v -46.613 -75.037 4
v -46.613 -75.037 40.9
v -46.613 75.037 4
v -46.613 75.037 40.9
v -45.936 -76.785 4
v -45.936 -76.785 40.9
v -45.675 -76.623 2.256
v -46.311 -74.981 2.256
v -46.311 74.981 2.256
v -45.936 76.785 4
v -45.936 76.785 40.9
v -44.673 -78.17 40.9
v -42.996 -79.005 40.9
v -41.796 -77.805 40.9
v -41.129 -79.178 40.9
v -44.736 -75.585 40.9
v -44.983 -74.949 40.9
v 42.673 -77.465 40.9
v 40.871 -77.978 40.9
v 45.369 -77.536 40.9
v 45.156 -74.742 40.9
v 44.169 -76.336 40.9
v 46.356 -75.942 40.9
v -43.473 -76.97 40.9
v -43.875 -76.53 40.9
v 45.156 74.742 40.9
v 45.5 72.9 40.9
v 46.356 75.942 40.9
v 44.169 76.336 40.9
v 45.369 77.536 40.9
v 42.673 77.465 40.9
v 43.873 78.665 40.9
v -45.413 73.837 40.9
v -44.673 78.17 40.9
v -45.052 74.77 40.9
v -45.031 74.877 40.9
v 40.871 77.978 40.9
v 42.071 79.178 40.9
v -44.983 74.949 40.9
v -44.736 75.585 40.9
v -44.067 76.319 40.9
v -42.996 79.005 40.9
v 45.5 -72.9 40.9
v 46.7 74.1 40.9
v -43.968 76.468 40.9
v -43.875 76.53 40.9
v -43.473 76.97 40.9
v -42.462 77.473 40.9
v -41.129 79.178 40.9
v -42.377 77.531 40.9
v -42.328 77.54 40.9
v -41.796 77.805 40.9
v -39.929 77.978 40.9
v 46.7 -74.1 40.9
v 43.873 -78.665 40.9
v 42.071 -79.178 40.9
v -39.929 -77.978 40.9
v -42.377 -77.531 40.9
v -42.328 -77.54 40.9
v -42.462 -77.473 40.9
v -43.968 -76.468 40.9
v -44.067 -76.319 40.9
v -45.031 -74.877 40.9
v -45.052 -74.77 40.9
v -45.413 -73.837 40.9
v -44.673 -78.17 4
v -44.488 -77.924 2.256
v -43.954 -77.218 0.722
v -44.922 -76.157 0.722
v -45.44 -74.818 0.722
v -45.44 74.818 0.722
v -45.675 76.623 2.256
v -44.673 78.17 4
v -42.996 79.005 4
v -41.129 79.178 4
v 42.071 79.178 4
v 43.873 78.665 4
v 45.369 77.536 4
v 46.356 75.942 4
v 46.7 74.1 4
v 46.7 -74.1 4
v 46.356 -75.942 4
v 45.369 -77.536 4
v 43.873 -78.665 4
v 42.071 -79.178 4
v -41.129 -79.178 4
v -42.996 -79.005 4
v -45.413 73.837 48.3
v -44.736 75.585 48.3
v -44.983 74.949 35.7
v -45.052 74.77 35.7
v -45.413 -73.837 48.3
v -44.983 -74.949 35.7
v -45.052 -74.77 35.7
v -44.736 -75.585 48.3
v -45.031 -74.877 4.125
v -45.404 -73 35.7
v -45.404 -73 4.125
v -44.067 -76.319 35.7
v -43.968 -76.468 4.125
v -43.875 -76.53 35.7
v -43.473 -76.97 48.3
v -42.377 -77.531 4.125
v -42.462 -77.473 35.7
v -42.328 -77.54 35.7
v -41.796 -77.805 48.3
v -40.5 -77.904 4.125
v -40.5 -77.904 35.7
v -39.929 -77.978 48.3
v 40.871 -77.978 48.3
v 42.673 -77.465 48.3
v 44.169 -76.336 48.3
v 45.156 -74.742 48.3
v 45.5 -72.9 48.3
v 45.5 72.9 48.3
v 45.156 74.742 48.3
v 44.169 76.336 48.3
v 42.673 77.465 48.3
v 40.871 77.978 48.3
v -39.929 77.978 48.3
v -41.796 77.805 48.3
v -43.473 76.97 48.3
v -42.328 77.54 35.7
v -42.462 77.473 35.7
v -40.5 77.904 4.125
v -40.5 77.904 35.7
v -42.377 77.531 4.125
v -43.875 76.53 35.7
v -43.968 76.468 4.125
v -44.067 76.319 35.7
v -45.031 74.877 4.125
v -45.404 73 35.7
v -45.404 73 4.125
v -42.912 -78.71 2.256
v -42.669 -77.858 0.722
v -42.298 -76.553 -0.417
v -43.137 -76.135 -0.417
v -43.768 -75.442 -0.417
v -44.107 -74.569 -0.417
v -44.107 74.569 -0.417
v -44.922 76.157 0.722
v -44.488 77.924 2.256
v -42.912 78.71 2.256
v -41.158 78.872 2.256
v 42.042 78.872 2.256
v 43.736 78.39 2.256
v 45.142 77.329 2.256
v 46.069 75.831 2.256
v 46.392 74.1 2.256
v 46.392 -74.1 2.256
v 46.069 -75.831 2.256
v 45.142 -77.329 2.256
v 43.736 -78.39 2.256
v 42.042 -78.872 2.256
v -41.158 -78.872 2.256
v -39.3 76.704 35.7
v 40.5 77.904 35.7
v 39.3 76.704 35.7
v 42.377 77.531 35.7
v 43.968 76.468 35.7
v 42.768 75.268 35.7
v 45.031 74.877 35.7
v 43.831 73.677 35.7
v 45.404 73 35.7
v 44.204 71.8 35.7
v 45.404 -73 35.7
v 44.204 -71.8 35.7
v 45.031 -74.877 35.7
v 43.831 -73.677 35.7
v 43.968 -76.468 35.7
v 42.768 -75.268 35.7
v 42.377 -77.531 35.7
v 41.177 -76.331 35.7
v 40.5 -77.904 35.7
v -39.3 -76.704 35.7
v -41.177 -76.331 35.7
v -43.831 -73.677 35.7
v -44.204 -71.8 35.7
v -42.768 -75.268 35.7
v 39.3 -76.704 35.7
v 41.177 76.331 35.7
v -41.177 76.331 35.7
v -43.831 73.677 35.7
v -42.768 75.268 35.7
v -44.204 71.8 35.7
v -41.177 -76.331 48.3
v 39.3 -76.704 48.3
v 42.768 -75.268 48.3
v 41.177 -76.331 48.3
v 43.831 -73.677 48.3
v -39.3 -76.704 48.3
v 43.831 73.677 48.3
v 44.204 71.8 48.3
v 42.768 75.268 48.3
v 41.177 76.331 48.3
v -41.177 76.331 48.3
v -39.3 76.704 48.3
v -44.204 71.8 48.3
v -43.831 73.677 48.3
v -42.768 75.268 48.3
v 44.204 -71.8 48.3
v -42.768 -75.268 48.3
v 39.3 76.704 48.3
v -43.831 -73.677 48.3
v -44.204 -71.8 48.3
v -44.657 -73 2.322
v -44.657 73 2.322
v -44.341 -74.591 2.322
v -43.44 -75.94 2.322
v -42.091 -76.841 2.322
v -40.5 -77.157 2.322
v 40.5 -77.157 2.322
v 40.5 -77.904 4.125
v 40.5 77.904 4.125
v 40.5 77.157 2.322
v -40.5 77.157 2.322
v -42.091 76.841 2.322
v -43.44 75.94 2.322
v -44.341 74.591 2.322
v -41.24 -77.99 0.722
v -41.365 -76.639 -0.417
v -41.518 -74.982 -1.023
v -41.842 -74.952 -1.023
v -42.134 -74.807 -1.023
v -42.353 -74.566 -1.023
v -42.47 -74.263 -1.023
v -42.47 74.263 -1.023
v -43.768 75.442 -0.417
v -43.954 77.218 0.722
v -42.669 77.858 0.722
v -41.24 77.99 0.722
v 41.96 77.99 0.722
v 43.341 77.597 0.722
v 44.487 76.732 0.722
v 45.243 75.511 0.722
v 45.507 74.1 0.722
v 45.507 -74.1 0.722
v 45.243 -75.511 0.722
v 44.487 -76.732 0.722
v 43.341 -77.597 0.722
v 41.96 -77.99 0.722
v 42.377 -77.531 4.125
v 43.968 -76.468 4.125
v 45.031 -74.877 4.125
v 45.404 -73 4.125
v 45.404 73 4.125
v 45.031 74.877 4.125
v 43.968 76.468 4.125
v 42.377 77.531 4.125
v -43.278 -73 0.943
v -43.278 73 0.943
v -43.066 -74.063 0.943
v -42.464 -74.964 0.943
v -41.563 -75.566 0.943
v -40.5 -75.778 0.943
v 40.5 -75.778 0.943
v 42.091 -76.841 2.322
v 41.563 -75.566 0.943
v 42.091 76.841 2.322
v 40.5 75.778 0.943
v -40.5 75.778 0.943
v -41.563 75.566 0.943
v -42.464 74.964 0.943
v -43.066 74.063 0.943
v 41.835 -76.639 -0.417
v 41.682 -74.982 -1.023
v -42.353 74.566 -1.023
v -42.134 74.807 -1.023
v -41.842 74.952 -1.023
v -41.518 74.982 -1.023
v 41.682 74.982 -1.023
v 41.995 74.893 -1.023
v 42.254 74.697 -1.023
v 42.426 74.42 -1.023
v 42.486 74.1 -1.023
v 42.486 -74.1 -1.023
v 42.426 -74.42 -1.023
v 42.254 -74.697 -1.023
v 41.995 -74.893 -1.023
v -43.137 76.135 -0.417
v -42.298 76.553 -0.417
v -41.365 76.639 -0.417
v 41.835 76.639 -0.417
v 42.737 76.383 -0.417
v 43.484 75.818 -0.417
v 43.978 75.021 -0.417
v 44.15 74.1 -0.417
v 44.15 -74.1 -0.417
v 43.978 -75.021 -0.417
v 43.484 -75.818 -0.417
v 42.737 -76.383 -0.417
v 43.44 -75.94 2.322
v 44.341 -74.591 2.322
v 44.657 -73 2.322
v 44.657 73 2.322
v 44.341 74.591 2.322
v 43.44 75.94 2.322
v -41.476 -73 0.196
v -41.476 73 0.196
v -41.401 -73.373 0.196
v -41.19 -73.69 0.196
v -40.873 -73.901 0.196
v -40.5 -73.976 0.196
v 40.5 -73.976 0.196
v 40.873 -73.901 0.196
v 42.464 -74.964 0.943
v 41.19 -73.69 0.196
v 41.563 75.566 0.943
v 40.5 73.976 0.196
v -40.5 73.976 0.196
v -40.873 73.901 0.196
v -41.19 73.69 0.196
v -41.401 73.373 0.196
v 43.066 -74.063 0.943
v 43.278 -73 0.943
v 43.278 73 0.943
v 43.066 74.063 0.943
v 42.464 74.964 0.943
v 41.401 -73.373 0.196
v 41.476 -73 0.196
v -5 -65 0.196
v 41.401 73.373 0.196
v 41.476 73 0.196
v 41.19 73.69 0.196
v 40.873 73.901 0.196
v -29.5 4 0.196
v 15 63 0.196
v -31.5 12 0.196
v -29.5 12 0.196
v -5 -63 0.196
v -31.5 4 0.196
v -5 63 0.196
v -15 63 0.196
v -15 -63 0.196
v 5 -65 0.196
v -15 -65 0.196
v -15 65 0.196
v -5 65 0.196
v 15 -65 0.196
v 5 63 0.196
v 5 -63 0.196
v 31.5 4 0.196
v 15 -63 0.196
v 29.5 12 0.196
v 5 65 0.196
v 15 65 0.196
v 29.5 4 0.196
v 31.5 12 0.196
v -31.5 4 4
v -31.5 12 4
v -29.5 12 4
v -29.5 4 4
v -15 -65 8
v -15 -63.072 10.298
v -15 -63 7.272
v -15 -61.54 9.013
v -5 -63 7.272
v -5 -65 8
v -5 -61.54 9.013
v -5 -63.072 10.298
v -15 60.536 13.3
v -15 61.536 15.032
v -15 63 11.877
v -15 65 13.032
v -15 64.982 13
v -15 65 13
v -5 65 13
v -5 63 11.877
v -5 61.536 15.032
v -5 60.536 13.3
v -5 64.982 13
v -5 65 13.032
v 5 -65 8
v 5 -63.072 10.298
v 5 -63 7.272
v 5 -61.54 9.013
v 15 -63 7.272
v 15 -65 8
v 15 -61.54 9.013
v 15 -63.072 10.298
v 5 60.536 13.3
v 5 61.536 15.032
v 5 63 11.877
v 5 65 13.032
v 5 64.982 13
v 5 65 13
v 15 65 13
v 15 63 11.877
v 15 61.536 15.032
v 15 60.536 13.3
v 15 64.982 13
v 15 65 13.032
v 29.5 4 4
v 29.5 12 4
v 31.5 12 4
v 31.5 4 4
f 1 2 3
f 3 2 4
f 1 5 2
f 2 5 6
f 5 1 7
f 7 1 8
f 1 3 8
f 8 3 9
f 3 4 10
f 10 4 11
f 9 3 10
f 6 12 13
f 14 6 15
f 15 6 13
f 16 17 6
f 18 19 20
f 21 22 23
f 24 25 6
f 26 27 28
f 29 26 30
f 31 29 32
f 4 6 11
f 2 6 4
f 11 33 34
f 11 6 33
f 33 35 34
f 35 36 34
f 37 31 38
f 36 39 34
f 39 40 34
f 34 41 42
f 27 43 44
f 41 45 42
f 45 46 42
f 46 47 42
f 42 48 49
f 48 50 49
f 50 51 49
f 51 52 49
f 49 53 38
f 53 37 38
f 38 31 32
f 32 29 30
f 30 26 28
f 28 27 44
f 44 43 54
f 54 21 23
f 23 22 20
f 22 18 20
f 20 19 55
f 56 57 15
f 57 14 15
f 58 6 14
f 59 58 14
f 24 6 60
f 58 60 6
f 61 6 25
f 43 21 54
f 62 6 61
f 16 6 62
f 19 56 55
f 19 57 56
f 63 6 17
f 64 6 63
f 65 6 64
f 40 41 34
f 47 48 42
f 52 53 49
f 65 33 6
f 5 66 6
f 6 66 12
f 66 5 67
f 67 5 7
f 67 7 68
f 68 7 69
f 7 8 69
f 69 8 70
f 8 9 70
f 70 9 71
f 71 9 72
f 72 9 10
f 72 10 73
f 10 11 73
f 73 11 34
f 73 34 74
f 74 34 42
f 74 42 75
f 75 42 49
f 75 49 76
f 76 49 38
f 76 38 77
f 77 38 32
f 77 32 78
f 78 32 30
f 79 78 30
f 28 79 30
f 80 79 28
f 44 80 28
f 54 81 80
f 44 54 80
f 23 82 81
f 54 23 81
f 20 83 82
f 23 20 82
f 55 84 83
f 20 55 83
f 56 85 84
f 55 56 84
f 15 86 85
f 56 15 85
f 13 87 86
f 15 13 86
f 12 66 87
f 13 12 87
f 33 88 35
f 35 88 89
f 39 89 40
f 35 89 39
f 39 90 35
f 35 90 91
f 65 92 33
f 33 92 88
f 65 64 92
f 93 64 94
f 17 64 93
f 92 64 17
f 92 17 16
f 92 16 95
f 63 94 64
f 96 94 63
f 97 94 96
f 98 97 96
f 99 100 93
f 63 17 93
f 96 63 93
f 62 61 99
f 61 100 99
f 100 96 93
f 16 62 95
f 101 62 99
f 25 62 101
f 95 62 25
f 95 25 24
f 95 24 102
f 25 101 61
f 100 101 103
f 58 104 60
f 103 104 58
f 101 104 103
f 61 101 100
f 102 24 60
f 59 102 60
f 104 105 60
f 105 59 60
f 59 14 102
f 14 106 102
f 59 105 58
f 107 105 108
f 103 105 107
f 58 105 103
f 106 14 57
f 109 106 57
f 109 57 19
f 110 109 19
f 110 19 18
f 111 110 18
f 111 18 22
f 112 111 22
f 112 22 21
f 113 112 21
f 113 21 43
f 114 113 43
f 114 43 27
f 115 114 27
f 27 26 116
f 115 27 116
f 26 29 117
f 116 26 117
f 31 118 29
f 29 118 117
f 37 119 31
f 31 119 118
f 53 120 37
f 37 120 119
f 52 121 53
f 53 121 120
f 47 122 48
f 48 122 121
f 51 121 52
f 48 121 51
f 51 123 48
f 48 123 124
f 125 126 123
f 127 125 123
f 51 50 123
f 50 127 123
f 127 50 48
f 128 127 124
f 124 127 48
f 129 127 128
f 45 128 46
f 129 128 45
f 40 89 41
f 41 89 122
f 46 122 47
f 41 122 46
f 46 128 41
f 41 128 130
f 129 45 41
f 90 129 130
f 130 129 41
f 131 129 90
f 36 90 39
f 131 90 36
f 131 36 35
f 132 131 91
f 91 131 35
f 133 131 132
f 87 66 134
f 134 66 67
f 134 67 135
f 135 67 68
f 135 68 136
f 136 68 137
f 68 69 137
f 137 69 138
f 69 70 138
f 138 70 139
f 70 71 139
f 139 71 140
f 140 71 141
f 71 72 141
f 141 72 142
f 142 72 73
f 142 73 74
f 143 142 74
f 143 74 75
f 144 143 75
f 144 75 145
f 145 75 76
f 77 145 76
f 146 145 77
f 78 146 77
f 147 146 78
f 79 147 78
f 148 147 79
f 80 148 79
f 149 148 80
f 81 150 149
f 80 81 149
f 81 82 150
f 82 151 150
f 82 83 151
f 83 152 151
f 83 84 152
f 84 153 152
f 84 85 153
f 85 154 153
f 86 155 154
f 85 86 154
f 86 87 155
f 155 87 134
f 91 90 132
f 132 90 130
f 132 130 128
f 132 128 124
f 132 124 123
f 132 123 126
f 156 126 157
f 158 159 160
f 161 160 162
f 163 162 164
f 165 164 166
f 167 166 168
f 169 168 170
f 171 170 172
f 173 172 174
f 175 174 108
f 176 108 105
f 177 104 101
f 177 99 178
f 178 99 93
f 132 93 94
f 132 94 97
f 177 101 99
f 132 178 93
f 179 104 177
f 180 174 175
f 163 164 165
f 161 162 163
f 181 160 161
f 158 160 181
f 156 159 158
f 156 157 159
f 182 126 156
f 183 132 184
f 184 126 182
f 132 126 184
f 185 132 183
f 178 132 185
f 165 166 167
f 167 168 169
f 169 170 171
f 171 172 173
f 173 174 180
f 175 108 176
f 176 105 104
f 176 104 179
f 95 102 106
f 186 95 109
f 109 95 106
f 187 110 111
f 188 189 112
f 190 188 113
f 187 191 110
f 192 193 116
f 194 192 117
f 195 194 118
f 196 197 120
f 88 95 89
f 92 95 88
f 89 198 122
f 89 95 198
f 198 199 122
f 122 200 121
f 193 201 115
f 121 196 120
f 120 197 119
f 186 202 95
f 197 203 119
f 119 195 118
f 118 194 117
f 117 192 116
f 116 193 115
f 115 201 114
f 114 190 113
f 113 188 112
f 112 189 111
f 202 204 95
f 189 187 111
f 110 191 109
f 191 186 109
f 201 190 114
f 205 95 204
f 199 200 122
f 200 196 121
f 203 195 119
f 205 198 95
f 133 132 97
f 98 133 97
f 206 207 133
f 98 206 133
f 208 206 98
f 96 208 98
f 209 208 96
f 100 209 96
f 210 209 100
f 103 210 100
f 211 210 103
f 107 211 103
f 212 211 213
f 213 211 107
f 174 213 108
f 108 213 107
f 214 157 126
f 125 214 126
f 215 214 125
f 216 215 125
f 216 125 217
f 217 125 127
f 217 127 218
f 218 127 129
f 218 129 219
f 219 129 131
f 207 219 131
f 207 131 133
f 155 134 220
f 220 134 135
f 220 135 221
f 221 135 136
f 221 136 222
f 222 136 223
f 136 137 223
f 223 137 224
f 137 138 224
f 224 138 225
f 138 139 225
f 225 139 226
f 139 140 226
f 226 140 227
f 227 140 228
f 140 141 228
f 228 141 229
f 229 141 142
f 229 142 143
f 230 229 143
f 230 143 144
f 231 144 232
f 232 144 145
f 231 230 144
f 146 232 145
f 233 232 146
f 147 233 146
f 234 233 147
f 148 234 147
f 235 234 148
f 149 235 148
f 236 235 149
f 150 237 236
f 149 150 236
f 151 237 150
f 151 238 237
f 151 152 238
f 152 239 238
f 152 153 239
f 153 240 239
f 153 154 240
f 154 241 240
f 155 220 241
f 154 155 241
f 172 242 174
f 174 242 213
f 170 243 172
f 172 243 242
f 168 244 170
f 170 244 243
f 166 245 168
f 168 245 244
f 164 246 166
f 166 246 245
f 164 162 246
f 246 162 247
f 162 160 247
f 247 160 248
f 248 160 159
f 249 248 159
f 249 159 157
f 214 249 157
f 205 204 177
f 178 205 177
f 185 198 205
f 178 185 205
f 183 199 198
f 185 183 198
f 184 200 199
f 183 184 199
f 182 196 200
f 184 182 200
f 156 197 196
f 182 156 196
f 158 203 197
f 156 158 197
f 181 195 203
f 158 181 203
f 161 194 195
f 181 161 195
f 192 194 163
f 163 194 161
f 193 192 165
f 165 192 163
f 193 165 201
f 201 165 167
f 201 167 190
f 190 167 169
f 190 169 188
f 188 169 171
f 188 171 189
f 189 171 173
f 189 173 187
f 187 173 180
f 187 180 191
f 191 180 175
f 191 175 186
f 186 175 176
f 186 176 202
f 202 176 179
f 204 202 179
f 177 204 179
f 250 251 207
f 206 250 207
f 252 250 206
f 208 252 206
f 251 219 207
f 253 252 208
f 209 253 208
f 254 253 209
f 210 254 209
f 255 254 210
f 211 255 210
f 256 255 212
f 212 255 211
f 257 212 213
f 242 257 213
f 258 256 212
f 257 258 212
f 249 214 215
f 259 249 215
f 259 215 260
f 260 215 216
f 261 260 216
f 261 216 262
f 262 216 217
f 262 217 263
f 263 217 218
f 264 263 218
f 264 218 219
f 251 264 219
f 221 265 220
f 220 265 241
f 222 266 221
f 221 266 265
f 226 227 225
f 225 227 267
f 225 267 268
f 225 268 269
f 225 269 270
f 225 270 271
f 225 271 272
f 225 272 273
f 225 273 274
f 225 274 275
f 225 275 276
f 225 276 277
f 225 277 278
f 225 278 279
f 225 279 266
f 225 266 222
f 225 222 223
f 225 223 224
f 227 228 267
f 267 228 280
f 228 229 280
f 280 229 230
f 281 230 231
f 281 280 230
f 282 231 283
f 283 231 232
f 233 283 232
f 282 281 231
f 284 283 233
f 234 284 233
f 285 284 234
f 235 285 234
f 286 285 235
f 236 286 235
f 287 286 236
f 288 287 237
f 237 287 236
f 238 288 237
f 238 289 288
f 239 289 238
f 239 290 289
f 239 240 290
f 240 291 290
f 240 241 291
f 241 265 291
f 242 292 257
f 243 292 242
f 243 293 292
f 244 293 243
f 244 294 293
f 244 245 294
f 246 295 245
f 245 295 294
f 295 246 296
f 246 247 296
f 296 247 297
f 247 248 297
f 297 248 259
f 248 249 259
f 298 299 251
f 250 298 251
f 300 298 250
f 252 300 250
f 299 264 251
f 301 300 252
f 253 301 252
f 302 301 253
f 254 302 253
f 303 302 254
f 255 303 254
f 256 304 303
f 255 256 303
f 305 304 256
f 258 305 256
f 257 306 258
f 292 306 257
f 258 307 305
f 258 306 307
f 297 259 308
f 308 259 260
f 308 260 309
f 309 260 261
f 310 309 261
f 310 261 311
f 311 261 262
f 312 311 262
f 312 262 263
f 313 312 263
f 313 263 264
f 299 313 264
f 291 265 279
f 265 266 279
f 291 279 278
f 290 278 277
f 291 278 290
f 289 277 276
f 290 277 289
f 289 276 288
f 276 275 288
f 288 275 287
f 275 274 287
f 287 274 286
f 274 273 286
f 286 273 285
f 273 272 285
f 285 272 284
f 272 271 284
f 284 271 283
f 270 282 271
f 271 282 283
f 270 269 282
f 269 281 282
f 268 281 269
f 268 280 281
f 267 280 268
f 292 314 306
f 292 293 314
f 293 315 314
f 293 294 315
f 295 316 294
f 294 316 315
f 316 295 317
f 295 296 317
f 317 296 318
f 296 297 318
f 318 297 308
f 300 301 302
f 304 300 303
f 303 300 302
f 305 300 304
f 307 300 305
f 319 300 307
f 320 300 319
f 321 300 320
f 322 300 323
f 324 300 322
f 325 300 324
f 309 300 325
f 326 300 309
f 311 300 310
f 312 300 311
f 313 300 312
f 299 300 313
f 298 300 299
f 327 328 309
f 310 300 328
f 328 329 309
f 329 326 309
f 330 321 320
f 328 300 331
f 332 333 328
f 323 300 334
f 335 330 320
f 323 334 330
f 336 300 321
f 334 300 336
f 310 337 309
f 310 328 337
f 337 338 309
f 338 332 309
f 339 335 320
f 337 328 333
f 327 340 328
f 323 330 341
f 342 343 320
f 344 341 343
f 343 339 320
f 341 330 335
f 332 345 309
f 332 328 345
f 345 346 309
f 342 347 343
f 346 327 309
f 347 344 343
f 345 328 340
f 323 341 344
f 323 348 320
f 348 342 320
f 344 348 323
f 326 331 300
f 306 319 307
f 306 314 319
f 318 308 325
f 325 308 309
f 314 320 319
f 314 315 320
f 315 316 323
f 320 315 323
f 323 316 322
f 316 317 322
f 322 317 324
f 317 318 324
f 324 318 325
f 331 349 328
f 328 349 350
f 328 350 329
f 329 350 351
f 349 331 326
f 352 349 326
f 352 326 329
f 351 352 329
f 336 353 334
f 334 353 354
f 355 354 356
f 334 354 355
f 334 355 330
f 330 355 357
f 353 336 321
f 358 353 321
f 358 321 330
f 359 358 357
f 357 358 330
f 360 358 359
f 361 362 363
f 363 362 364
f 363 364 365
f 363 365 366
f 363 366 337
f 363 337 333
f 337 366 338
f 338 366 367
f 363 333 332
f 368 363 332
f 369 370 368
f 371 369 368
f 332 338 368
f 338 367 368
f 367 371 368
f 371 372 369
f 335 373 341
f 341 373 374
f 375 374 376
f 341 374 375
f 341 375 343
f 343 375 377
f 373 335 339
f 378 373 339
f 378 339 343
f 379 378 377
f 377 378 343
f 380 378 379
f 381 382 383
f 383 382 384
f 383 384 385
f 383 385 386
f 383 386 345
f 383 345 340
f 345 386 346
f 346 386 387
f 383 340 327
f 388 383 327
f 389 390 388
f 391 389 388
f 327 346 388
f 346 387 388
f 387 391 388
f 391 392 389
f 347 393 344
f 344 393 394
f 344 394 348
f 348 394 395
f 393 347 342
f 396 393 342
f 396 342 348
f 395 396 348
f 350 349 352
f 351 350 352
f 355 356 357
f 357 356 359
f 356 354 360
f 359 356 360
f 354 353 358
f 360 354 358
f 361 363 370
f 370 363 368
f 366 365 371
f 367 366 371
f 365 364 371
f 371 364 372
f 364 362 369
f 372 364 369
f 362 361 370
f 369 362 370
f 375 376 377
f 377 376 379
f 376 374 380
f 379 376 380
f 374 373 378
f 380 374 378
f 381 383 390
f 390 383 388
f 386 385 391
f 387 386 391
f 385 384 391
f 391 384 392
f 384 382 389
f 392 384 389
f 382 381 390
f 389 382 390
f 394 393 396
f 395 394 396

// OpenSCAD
// Steel series mouse, pro gaming laser mouse, cover.


mouse_length = 126;
// Smallest waist
mouse_waist = 58 + 3.0;
// Smallest place at, measured from front.
mouse_waist_at = 55;
// Height is used by case
mouse_height = 42;

// Case offset to mouse stuff
// These are inside measurements.
case_padding = 30;
case_width = mouse_waist + case_padding;
case_length = mouse_length + case_padding;
case_height = mouse_height + case_padding; // Leave room for wire.
case_corner_radius = 5;
case_thickness = 1.2;
case_snap_height = 15;

// thickness whereever it is used
snap_thickness = 2.0;

// Padding manifolds
pad = 0.1;

////////////////////////////////////////////////////////////////////////////////

// This is a snap holder in the front. Two are used, one on each side of the wire.
module front_snap( x_offset, width, inner_height, thickness, overlap, overlap_angle ) {
    translate( [x_offset + width / 2.0, thickness / 2.0, (inner_height + thickness) / 2.0] ) {
        cube([width, thickness, inner_height + thickness], center = true);
        // TODO: the 4.2 can be calculated, if I cared...
        translate( [ -width/2.0, 0, ( overlap + inner_height + thickness ) / 2.0 - 3.7 ] ) {
            rotate( [overlap_angle, 0, 0] ) {
                cube([width, thickness, overlap], center = false );
            }
        }

    }
}

module front_snaps() {
    front_snap( 5, 10, 11, snap_thickness, 4, 60 );
    front_snap( -15, 10, 11, snap_thickness, 4, 60 );
}



// This is a snap holder in the back. Two are used, one on each side of the wire.
module back_snap( x_offset, width, inner_height, thickness, overlap, overlap_angle ) {
    translate( [x_offset + width / 2.0, thickness / 2.0, (inner_height + thickness) / 2.0] ) {
        cube([width, thickness, inner_height + thickness], center = true);
        // TODO: the 2.1 can be calculated, if I cared...
        // y also, very broken now.
        translate( [ -width/2.0, -thickness+1, ( overlap + inner_height + thickness ) / 2.0 - 1.5 ] ) {
            rotate( [overlap_angle, 0, 0] ) {
                cube([width, thickness, overlap], center = false );
            }
        }

    }
}

module back_snaps() {
    translate([0, -mouse_length-snap_thickness, 0] ) {
        back_snap( 5, 10, 6, snap_thickness, 3, -40 );
        back_snap( -15, 10, 6, snap_thickness, 3, -40 );
    }
}


// Side snaps, not really snaps
module side_snap( x_offset, y_offset, width, height, thickness ) {
    translate( [x_offset, y_offset, height / 2.0] ) {
        cube([thickness, width, height], center = true);
    }
}

module side_snaps() {
    side_snap( mouse_waist / 2.0, -mouse_waist_at, 8, 4, snap_thickness );
    side_snap( -mouse_waist / 2.0, -mouse_waist_at, 8, 4, snap_thickness );
}


module bottom_snaps() {
    translate([0, ( mouse_length + 2 * snap_thickness ) / 2.0, 0]) {
        translate([0,-snap_thickness,0]) {
            front_snaps();
            back_snaps();
            side_snaps();
        }
    }
}

////////////////////////////////////////////////////////////////////////////////
// The enclosure/case
module rounded_box(x, y, z, r) {
    minkowski() {
        cube([x-r * 2, y-r*2, z-r*2], center = true);
        sphere(r=r);
    }
}

module hollow_box(x, y, z, r) {
    difference() {
        rounded_box(x+case_thickness*2, y+case_thickness*2, z+case_thickness*2, r+0.1);
        rounded_box(x, y, z, r);
    }
}

// This is the outer box - we make two of these, and split them to get lid and bottom.
module outer_box() {
    hollow_box(case_width, case_length, case_height, case_corner_radius);
}

// This is the bottom of the case, inclusive snaps.
// It is cut at mouse height
module bottom_case() {
    // Translate up to snaps + pad
    translate([0,0,case_height/2.0+pad]) {
        difference() {
            outer_box();
            // Cut at mouse height for now
            translate([0,0,mouse_height]) {
                cube( [200,200,case_height + case_thickness*2], center = true);
            }
        }
    }
    bottom_snaps();
}

// The snaps between the two parts.
// Centered at mouse_height, match bottom
module bottom_lid_snap() {
    translate([0,0,mouse_height]) {
        difference() {
            hollow_box(case_width-2*case_thickness, case_length-2*case_thickness, case_height, case_corner_radius);
            translate([0,0,-case_height/2-case_snap_height/2]) {
                cube( [200,200,case_height + case_thickness*2], center = true);
            }
            translate([0,0,case_height/2+case_snap_height/2]) {
                cube( [200,200,case_height + case_thickness*2], center = true);
            }
        }
    }
}

////////////////////////////////////////////////////////////////////////////////
// The actual parts.

bottom_lid_snap();
bottom_case();
